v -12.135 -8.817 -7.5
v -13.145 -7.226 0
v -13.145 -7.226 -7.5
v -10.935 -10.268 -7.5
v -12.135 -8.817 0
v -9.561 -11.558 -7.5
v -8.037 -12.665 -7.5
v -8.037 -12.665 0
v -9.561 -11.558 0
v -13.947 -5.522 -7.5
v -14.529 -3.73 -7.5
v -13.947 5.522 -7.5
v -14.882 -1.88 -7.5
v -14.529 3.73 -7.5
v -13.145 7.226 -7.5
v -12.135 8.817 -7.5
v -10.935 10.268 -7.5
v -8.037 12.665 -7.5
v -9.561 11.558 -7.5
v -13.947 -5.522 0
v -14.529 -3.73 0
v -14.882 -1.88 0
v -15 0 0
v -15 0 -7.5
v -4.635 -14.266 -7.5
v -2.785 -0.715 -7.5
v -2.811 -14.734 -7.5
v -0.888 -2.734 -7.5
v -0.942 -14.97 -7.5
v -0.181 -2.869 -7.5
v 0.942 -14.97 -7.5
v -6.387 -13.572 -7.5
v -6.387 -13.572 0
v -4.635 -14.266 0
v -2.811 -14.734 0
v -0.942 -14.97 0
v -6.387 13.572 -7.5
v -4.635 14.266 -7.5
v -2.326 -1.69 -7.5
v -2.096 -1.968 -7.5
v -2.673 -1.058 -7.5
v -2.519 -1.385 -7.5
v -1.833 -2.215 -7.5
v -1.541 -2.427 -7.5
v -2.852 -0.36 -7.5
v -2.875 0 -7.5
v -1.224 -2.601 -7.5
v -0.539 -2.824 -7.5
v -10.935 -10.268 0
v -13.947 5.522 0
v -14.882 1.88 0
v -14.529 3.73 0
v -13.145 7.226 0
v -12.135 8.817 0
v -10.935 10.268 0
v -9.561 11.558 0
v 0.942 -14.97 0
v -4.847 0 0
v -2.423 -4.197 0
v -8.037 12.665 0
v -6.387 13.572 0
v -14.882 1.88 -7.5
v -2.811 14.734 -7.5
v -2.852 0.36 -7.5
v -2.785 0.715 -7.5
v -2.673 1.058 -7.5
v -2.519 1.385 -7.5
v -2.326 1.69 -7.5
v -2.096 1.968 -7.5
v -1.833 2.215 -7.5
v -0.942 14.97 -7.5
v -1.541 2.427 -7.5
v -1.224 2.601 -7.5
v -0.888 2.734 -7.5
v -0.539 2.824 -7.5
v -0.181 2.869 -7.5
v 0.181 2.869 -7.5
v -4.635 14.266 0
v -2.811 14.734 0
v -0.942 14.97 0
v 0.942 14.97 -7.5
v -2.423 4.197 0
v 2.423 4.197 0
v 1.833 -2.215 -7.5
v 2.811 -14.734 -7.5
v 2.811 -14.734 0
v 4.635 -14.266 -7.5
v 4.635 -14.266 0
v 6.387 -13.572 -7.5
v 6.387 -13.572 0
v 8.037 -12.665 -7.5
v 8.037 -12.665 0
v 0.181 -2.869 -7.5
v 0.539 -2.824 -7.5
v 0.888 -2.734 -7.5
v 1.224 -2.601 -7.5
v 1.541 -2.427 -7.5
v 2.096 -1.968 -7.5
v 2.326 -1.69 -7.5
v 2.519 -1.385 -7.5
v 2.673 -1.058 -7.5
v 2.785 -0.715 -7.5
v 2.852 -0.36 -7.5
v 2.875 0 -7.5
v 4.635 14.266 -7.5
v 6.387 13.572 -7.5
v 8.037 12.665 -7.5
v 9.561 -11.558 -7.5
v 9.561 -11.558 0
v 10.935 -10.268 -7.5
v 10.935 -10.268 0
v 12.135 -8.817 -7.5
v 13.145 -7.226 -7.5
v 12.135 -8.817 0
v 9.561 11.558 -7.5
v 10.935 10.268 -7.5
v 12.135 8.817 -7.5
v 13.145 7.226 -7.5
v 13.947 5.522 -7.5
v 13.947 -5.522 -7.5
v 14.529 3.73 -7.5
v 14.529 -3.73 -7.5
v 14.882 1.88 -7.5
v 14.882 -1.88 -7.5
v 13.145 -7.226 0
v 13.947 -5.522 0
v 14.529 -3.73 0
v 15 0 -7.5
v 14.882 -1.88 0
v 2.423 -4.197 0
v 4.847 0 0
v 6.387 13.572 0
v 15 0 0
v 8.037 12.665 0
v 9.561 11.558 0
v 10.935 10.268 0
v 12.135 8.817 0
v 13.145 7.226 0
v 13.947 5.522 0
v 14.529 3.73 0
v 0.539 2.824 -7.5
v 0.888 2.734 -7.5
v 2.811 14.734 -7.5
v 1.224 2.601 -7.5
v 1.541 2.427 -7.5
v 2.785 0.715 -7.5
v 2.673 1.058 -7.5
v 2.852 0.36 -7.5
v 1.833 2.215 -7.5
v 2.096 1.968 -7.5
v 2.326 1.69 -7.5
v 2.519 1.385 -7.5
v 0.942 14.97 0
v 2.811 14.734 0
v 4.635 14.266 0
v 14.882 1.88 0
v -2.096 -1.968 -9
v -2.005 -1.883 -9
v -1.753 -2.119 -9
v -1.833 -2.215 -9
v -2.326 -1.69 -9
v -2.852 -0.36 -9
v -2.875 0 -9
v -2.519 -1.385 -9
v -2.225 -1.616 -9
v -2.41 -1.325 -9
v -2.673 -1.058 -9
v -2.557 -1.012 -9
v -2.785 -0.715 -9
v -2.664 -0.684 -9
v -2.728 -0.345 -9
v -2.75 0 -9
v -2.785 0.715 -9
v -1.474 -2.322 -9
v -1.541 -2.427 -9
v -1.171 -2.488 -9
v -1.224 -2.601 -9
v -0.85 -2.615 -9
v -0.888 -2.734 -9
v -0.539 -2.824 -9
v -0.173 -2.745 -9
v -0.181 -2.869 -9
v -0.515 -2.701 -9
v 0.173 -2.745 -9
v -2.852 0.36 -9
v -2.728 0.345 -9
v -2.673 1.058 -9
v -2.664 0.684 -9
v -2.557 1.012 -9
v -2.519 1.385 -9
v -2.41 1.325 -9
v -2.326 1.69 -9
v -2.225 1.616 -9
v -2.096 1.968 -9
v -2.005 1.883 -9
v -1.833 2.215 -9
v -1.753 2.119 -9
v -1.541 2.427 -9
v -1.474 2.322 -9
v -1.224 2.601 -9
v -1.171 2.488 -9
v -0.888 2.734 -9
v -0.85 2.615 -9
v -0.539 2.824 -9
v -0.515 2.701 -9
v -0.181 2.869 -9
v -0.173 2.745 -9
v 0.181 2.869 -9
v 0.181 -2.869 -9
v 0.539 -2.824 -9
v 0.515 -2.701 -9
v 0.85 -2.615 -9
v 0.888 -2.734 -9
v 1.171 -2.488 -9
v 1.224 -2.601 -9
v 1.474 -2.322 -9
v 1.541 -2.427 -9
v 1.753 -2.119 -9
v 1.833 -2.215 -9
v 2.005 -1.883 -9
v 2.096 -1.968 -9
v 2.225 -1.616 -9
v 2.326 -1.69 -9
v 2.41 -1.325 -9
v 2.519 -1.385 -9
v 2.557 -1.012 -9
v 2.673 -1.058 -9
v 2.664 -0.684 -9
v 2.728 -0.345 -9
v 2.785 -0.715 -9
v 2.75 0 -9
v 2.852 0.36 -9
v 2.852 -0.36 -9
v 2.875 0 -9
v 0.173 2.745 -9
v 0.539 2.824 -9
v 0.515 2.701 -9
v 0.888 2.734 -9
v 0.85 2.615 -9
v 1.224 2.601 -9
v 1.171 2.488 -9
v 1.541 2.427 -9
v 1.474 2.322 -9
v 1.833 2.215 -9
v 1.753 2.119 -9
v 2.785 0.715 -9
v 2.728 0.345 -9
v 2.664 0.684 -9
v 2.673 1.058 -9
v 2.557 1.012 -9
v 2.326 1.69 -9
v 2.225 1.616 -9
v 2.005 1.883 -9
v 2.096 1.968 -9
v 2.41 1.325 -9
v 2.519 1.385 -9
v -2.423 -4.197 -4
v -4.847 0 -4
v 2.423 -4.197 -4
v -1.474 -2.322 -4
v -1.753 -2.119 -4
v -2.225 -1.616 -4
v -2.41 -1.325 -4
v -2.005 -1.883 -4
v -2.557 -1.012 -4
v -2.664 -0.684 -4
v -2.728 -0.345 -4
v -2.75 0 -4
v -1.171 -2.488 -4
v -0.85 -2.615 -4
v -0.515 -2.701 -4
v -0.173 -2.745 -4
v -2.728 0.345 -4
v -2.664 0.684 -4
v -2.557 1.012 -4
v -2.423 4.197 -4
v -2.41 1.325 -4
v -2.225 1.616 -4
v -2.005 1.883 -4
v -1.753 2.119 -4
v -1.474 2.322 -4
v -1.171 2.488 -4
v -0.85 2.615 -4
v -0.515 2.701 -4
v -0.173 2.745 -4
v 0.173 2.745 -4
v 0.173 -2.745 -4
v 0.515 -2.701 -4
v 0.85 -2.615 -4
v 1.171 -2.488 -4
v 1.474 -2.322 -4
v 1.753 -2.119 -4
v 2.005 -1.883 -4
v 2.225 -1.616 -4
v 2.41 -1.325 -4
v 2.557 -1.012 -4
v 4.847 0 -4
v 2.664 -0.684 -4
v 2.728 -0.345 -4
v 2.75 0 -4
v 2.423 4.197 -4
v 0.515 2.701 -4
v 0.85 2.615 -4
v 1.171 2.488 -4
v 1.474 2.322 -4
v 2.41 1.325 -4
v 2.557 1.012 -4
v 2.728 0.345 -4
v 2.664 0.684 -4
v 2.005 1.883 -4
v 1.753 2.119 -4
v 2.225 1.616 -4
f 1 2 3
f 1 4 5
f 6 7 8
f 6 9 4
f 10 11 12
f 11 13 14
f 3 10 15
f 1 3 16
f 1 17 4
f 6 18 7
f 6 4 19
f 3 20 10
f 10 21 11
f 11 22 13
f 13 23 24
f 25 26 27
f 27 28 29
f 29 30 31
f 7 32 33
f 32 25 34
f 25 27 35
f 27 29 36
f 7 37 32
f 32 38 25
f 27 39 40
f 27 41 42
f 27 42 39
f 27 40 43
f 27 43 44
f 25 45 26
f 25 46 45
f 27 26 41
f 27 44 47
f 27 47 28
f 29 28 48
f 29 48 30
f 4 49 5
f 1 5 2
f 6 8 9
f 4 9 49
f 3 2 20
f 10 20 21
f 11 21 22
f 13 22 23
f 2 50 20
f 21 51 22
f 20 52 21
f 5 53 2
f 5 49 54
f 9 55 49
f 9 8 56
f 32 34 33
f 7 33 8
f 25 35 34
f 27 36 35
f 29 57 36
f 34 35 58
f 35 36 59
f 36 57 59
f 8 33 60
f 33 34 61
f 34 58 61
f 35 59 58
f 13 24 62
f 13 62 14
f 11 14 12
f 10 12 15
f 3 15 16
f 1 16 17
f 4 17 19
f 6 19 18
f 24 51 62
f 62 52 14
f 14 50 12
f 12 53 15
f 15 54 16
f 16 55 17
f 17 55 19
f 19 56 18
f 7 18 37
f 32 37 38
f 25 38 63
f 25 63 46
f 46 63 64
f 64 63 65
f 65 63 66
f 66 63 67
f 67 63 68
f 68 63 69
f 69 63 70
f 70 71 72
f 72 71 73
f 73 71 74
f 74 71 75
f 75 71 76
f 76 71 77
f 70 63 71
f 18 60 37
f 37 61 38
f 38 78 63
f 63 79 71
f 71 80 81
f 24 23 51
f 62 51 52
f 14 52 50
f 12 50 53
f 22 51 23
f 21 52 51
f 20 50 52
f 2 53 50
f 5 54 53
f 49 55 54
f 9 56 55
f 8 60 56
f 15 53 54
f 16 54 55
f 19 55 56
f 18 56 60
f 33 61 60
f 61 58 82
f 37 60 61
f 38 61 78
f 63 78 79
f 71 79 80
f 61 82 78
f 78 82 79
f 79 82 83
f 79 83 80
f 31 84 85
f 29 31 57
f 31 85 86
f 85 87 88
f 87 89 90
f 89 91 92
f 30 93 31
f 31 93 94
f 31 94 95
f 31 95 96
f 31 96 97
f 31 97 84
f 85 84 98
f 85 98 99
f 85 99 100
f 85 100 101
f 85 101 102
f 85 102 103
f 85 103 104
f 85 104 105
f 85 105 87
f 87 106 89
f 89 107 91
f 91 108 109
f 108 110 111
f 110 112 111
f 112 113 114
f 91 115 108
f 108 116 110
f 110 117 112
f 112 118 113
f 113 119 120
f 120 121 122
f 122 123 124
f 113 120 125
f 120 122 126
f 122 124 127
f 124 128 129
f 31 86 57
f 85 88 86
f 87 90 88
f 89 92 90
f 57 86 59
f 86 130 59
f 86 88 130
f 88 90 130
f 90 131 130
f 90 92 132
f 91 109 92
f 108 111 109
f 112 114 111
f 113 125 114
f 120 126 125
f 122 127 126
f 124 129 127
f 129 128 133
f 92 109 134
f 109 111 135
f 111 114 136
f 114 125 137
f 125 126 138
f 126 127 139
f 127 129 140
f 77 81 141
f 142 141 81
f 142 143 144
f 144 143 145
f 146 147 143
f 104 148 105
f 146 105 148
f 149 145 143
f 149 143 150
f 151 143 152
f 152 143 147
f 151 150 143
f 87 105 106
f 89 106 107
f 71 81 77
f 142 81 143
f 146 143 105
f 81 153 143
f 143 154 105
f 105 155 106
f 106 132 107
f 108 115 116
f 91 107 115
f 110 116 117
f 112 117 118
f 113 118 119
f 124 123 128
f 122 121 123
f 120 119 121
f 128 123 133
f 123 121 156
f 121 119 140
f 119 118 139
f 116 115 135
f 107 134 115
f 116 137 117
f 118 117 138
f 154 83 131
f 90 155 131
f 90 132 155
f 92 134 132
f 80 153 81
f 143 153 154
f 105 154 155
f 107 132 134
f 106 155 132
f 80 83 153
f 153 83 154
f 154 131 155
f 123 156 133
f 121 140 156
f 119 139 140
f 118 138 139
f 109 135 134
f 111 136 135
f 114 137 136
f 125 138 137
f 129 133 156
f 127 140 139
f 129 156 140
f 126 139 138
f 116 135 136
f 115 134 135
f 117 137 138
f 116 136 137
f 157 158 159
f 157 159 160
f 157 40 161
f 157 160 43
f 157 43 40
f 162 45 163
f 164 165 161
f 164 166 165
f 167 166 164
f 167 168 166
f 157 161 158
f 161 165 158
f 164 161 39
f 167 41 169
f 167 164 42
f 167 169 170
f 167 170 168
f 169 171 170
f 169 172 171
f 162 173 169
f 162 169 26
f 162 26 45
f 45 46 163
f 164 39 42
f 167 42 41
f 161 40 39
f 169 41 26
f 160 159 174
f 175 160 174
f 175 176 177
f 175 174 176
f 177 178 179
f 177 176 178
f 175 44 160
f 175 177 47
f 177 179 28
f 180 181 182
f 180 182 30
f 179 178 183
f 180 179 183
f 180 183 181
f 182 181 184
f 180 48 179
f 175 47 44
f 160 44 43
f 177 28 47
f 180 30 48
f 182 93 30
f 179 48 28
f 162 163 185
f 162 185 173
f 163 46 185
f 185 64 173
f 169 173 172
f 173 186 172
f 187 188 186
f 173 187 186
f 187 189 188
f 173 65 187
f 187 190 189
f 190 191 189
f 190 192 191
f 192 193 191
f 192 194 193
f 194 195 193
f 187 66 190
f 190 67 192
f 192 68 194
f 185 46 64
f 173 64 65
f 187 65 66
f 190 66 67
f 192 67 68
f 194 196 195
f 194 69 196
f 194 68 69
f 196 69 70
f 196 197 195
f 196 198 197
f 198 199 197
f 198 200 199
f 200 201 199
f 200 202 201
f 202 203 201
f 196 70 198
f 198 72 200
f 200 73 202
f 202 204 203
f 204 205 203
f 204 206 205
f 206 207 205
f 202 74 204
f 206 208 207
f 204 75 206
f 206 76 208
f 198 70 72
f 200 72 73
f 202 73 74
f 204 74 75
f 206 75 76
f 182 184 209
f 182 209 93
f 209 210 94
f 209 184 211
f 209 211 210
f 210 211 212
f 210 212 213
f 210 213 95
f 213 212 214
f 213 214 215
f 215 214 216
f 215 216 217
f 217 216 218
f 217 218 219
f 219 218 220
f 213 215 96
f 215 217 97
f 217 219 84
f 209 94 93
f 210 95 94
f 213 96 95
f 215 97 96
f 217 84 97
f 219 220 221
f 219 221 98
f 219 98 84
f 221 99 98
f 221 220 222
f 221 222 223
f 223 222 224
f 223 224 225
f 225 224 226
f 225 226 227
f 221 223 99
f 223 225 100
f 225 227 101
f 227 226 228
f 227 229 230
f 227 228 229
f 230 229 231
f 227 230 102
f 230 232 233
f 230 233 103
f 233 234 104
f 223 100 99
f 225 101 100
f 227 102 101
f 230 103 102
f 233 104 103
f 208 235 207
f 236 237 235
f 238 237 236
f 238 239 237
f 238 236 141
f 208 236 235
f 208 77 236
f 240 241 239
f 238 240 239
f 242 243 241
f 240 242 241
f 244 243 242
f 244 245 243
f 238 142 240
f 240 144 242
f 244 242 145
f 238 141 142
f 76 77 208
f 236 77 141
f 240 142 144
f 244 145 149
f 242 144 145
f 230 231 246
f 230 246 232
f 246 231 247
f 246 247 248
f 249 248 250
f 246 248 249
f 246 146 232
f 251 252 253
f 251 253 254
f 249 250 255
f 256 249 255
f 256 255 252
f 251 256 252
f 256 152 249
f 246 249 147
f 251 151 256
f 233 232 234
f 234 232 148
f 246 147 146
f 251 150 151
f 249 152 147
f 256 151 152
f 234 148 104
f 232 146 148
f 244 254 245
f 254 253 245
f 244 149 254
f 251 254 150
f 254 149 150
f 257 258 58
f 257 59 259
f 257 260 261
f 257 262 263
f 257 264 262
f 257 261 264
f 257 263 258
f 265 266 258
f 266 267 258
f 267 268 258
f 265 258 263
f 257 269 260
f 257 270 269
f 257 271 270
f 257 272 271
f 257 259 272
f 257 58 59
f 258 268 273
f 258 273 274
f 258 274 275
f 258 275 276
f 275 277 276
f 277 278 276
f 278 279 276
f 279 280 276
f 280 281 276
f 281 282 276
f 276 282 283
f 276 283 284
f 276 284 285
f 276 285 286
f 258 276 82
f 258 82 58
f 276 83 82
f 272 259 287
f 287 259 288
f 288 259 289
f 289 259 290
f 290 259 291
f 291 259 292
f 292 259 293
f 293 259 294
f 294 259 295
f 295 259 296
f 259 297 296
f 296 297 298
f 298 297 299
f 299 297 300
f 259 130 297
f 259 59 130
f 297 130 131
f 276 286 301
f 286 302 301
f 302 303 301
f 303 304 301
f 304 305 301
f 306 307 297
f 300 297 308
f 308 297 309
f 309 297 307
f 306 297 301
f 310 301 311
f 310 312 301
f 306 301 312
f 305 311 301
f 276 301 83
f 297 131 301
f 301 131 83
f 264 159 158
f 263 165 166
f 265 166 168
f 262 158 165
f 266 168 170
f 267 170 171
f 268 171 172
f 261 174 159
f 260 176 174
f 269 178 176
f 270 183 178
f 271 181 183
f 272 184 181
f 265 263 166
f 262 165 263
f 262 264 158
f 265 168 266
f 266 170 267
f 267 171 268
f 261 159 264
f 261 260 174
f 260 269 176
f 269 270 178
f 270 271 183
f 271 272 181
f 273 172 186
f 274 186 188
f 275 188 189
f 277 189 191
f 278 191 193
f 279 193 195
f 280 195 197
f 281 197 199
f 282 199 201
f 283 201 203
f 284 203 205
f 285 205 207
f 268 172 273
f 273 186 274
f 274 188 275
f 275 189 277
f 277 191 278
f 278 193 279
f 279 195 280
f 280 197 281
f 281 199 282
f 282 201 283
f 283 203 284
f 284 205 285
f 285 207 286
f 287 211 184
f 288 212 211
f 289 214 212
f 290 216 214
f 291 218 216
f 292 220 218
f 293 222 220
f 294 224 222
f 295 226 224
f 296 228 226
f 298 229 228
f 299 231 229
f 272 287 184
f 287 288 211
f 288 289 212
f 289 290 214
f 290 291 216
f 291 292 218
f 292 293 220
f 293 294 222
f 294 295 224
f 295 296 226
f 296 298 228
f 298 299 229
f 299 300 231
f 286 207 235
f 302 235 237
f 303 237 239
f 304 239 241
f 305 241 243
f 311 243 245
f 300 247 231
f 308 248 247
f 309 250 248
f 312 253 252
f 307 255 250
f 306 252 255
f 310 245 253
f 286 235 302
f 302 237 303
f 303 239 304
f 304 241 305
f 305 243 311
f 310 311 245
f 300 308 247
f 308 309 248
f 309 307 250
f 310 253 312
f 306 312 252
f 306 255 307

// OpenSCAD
$fn = 50;


difference() {
	union() {
		translate(v = [0, 0, -7.5000000000]) {
			cylinder(h = 7.5000000000, r = 15.0000000000);
		}
		#translate(v = [0, 0, -9.0000000000]) {
			cylinder(h = 9, r = 2.8750000000);
		}
	}
	union() {
		translate(v = [0, 0, 0]) {
			rotate(a = [0, 0, 0]) {
				difference() {
					union() {
						translate(v = [0, 0, -4]) {
							linear_extrude(height = 4) {
								polygon(points = [[4.8468000000, 0.0000000000], [2.4234000000, 4.1974519271], [-2.4234000000, 4.1974519271], [-4.8468000000, 0.0000000000], [-2.4234000000, -4.1974519271], [2.4234000000, -4.1974519271]]);
							}
						}
					}
					union();
				}
			}
		}
		#translate(v = [0, 0, -100.0000000000]) {
			cylinder(h = 200, r = 2.7500000000);
		}
	}
}
